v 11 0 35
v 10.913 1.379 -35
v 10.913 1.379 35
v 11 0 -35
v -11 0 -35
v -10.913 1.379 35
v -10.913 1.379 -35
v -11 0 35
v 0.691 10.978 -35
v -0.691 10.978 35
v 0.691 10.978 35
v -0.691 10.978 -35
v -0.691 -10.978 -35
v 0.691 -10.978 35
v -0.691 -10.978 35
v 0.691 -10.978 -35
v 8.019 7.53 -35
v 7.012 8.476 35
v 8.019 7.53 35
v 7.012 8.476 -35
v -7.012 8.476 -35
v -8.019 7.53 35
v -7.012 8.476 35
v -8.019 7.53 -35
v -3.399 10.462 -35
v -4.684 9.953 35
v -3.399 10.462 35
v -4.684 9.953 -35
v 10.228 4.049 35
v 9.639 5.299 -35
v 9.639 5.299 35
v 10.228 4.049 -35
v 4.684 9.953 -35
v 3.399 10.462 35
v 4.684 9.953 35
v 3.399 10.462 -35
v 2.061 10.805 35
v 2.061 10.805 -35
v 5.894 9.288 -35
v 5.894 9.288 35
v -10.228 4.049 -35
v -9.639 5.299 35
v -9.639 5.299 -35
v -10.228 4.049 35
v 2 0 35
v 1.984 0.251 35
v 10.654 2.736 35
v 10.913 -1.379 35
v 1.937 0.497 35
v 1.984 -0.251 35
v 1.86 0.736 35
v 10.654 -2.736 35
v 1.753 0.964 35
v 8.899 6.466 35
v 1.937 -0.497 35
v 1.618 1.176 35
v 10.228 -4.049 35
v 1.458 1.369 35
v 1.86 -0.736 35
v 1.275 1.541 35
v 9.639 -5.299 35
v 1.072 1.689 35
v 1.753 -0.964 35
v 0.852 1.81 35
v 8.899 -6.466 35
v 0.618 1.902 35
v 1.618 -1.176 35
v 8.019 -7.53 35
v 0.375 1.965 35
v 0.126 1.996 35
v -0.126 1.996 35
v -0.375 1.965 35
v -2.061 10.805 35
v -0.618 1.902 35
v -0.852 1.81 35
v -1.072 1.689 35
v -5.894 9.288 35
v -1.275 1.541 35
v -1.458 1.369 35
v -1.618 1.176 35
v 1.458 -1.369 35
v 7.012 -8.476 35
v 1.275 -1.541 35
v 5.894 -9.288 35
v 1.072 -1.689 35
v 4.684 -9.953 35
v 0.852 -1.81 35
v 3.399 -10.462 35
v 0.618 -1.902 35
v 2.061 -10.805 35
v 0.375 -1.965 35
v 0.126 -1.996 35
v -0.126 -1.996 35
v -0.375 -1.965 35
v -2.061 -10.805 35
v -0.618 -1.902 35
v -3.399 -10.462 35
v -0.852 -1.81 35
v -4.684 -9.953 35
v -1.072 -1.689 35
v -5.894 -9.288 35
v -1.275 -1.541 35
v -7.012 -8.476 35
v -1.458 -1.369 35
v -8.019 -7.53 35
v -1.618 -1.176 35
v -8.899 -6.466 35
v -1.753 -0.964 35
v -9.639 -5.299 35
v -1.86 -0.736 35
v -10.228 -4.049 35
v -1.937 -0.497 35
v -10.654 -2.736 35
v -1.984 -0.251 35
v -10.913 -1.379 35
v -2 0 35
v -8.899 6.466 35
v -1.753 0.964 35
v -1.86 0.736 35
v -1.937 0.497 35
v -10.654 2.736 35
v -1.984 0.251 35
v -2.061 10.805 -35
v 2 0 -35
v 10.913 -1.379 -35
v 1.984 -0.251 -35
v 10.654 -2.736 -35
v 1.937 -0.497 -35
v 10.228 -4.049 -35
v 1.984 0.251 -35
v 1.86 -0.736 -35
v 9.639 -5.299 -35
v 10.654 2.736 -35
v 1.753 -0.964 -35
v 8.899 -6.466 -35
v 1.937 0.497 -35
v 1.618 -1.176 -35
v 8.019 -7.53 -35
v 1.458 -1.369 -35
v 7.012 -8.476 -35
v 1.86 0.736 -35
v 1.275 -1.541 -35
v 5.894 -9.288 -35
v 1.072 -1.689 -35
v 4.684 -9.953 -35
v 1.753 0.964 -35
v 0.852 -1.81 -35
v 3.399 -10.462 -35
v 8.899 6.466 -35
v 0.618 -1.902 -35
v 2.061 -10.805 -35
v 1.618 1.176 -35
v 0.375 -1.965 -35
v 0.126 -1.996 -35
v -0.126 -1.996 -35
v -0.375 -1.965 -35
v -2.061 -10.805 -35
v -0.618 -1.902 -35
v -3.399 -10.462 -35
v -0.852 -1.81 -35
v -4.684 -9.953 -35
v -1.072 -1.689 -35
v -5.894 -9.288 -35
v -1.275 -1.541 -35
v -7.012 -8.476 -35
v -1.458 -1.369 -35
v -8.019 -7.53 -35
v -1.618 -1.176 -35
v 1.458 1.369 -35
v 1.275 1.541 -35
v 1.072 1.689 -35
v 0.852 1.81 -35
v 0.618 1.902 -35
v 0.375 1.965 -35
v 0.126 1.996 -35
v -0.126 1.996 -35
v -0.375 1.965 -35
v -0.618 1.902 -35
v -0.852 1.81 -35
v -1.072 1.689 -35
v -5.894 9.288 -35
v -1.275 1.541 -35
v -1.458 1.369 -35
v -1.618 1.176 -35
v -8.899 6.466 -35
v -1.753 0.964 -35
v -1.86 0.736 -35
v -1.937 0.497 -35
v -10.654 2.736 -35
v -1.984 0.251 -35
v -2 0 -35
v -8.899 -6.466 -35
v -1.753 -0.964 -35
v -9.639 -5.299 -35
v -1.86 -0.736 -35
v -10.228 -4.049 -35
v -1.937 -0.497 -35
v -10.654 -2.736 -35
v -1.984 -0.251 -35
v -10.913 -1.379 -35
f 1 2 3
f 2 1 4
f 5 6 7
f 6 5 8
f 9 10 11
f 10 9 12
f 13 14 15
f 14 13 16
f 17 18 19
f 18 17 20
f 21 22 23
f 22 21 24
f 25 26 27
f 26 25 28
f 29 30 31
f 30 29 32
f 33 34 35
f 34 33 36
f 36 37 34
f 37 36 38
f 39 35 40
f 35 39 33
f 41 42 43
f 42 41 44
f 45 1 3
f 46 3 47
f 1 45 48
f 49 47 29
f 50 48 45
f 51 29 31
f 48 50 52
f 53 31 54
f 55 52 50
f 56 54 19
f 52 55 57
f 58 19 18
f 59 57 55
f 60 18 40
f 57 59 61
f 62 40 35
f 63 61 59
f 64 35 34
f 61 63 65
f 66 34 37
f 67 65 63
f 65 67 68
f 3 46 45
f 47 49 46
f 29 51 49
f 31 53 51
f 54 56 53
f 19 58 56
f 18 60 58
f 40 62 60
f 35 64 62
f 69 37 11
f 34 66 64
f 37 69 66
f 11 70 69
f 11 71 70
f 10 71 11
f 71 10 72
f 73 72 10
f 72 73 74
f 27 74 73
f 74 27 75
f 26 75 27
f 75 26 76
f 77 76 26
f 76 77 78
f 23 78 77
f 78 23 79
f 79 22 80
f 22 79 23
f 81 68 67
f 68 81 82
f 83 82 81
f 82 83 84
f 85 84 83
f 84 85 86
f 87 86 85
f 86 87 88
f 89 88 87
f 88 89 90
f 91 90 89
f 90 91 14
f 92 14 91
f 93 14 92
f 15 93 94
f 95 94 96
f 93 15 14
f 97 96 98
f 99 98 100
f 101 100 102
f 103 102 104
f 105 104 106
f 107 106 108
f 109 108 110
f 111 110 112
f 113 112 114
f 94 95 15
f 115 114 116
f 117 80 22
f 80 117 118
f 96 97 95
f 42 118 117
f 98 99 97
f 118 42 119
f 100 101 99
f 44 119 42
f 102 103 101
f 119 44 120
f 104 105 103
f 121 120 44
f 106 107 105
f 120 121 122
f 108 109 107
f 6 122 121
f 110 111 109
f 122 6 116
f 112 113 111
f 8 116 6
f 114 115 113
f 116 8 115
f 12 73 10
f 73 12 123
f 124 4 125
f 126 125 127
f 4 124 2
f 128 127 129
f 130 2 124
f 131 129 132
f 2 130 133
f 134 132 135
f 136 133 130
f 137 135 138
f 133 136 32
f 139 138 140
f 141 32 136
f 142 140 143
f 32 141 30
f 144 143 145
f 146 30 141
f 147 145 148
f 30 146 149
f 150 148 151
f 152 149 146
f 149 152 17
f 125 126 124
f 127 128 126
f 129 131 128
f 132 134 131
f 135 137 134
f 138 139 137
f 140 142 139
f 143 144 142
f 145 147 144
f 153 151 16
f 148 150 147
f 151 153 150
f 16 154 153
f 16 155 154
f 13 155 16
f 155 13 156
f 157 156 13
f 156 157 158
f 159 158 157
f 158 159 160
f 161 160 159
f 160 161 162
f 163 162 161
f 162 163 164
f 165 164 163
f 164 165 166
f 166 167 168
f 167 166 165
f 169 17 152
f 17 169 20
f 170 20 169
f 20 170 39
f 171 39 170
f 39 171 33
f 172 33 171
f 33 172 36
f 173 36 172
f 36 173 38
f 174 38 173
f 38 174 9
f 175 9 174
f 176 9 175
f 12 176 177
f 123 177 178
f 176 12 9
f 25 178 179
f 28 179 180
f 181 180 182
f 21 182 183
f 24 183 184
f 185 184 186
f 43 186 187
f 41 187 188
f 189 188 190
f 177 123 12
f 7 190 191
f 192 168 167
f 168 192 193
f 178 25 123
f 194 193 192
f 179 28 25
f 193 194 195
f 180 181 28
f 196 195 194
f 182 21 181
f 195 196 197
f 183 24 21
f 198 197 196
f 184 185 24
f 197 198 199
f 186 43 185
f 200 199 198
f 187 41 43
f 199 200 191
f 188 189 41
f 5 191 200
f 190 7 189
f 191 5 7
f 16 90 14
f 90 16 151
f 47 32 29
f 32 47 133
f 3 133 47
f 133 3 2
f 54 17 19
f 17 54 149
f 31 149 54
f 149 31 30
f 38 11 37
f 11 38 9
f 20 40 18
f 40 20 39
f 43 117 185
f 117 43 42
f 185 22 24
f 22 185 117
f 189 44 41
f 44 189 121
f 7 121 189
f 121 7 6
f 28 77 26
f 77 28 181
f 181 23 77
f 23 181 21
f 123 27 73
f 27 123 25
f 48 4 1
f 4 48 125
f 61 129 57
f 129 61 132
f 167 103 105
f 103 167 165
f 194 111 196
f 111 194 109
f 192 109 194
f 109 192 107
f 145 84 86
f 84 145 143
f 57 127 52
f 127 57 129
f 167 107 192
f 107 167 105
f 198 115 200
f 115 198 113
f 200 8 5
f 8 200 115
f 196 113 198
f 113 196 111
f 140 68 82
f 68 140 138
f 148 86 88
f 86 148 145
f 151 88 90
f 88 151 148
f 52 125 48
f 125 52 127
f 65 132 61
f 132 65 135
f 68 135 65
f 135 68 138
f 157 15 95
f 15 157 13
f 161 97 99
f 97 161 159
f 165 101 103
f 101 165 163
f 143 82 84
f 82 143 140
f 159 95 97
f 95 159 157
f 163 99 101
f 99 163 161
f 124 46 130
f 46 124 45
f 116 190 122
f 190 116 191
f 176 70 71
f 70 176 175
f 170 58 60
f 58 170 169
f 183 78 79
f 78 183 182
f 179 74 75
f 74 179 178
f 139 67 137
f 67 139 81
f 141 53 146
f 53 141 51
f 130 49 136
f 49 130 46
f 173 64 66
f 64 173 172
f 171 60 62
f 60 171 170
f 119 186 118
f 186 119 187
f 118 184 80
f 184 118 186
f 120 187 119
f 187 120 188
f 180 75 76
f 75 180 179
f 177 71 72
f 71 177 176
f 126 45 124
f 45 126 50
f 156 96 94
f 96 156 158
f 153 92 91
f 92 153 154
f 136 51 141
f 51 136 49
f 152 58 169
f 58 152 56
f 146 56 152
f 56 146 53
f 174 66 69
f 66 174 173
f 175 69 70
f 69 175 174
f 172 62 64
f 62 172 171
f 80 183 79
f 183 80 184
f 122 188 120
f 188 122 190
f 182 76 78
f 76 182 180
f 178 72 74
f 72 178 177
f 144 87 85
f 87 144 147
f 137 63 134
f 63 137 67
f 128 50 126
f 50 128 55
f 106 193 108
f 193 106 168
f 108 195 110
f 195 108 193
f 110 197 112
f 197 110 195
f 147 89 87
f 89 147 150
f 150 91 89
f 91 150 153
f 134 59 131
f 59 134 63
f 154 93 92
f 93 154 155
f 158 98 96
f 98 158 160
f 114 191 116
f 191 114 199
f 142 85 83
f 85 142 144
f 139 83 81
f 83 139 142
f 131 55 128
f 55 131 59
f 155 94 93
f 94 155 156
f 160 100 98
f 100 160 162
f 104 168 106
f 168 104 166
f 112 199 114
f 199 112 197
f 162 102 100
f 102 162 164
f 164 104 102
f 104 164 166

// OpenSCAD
$fn = 50;


difference() {
	union() {
		translate(v = [0, 0, -35.0000000000]) {
			cylinder(h = 70, r = 11.0000000000);
		}
	}
	union() {
		translate(v = [0, 0, -100.0000000000]) {
			cylinder(h = 200, r = 2);
		}
	}
}
